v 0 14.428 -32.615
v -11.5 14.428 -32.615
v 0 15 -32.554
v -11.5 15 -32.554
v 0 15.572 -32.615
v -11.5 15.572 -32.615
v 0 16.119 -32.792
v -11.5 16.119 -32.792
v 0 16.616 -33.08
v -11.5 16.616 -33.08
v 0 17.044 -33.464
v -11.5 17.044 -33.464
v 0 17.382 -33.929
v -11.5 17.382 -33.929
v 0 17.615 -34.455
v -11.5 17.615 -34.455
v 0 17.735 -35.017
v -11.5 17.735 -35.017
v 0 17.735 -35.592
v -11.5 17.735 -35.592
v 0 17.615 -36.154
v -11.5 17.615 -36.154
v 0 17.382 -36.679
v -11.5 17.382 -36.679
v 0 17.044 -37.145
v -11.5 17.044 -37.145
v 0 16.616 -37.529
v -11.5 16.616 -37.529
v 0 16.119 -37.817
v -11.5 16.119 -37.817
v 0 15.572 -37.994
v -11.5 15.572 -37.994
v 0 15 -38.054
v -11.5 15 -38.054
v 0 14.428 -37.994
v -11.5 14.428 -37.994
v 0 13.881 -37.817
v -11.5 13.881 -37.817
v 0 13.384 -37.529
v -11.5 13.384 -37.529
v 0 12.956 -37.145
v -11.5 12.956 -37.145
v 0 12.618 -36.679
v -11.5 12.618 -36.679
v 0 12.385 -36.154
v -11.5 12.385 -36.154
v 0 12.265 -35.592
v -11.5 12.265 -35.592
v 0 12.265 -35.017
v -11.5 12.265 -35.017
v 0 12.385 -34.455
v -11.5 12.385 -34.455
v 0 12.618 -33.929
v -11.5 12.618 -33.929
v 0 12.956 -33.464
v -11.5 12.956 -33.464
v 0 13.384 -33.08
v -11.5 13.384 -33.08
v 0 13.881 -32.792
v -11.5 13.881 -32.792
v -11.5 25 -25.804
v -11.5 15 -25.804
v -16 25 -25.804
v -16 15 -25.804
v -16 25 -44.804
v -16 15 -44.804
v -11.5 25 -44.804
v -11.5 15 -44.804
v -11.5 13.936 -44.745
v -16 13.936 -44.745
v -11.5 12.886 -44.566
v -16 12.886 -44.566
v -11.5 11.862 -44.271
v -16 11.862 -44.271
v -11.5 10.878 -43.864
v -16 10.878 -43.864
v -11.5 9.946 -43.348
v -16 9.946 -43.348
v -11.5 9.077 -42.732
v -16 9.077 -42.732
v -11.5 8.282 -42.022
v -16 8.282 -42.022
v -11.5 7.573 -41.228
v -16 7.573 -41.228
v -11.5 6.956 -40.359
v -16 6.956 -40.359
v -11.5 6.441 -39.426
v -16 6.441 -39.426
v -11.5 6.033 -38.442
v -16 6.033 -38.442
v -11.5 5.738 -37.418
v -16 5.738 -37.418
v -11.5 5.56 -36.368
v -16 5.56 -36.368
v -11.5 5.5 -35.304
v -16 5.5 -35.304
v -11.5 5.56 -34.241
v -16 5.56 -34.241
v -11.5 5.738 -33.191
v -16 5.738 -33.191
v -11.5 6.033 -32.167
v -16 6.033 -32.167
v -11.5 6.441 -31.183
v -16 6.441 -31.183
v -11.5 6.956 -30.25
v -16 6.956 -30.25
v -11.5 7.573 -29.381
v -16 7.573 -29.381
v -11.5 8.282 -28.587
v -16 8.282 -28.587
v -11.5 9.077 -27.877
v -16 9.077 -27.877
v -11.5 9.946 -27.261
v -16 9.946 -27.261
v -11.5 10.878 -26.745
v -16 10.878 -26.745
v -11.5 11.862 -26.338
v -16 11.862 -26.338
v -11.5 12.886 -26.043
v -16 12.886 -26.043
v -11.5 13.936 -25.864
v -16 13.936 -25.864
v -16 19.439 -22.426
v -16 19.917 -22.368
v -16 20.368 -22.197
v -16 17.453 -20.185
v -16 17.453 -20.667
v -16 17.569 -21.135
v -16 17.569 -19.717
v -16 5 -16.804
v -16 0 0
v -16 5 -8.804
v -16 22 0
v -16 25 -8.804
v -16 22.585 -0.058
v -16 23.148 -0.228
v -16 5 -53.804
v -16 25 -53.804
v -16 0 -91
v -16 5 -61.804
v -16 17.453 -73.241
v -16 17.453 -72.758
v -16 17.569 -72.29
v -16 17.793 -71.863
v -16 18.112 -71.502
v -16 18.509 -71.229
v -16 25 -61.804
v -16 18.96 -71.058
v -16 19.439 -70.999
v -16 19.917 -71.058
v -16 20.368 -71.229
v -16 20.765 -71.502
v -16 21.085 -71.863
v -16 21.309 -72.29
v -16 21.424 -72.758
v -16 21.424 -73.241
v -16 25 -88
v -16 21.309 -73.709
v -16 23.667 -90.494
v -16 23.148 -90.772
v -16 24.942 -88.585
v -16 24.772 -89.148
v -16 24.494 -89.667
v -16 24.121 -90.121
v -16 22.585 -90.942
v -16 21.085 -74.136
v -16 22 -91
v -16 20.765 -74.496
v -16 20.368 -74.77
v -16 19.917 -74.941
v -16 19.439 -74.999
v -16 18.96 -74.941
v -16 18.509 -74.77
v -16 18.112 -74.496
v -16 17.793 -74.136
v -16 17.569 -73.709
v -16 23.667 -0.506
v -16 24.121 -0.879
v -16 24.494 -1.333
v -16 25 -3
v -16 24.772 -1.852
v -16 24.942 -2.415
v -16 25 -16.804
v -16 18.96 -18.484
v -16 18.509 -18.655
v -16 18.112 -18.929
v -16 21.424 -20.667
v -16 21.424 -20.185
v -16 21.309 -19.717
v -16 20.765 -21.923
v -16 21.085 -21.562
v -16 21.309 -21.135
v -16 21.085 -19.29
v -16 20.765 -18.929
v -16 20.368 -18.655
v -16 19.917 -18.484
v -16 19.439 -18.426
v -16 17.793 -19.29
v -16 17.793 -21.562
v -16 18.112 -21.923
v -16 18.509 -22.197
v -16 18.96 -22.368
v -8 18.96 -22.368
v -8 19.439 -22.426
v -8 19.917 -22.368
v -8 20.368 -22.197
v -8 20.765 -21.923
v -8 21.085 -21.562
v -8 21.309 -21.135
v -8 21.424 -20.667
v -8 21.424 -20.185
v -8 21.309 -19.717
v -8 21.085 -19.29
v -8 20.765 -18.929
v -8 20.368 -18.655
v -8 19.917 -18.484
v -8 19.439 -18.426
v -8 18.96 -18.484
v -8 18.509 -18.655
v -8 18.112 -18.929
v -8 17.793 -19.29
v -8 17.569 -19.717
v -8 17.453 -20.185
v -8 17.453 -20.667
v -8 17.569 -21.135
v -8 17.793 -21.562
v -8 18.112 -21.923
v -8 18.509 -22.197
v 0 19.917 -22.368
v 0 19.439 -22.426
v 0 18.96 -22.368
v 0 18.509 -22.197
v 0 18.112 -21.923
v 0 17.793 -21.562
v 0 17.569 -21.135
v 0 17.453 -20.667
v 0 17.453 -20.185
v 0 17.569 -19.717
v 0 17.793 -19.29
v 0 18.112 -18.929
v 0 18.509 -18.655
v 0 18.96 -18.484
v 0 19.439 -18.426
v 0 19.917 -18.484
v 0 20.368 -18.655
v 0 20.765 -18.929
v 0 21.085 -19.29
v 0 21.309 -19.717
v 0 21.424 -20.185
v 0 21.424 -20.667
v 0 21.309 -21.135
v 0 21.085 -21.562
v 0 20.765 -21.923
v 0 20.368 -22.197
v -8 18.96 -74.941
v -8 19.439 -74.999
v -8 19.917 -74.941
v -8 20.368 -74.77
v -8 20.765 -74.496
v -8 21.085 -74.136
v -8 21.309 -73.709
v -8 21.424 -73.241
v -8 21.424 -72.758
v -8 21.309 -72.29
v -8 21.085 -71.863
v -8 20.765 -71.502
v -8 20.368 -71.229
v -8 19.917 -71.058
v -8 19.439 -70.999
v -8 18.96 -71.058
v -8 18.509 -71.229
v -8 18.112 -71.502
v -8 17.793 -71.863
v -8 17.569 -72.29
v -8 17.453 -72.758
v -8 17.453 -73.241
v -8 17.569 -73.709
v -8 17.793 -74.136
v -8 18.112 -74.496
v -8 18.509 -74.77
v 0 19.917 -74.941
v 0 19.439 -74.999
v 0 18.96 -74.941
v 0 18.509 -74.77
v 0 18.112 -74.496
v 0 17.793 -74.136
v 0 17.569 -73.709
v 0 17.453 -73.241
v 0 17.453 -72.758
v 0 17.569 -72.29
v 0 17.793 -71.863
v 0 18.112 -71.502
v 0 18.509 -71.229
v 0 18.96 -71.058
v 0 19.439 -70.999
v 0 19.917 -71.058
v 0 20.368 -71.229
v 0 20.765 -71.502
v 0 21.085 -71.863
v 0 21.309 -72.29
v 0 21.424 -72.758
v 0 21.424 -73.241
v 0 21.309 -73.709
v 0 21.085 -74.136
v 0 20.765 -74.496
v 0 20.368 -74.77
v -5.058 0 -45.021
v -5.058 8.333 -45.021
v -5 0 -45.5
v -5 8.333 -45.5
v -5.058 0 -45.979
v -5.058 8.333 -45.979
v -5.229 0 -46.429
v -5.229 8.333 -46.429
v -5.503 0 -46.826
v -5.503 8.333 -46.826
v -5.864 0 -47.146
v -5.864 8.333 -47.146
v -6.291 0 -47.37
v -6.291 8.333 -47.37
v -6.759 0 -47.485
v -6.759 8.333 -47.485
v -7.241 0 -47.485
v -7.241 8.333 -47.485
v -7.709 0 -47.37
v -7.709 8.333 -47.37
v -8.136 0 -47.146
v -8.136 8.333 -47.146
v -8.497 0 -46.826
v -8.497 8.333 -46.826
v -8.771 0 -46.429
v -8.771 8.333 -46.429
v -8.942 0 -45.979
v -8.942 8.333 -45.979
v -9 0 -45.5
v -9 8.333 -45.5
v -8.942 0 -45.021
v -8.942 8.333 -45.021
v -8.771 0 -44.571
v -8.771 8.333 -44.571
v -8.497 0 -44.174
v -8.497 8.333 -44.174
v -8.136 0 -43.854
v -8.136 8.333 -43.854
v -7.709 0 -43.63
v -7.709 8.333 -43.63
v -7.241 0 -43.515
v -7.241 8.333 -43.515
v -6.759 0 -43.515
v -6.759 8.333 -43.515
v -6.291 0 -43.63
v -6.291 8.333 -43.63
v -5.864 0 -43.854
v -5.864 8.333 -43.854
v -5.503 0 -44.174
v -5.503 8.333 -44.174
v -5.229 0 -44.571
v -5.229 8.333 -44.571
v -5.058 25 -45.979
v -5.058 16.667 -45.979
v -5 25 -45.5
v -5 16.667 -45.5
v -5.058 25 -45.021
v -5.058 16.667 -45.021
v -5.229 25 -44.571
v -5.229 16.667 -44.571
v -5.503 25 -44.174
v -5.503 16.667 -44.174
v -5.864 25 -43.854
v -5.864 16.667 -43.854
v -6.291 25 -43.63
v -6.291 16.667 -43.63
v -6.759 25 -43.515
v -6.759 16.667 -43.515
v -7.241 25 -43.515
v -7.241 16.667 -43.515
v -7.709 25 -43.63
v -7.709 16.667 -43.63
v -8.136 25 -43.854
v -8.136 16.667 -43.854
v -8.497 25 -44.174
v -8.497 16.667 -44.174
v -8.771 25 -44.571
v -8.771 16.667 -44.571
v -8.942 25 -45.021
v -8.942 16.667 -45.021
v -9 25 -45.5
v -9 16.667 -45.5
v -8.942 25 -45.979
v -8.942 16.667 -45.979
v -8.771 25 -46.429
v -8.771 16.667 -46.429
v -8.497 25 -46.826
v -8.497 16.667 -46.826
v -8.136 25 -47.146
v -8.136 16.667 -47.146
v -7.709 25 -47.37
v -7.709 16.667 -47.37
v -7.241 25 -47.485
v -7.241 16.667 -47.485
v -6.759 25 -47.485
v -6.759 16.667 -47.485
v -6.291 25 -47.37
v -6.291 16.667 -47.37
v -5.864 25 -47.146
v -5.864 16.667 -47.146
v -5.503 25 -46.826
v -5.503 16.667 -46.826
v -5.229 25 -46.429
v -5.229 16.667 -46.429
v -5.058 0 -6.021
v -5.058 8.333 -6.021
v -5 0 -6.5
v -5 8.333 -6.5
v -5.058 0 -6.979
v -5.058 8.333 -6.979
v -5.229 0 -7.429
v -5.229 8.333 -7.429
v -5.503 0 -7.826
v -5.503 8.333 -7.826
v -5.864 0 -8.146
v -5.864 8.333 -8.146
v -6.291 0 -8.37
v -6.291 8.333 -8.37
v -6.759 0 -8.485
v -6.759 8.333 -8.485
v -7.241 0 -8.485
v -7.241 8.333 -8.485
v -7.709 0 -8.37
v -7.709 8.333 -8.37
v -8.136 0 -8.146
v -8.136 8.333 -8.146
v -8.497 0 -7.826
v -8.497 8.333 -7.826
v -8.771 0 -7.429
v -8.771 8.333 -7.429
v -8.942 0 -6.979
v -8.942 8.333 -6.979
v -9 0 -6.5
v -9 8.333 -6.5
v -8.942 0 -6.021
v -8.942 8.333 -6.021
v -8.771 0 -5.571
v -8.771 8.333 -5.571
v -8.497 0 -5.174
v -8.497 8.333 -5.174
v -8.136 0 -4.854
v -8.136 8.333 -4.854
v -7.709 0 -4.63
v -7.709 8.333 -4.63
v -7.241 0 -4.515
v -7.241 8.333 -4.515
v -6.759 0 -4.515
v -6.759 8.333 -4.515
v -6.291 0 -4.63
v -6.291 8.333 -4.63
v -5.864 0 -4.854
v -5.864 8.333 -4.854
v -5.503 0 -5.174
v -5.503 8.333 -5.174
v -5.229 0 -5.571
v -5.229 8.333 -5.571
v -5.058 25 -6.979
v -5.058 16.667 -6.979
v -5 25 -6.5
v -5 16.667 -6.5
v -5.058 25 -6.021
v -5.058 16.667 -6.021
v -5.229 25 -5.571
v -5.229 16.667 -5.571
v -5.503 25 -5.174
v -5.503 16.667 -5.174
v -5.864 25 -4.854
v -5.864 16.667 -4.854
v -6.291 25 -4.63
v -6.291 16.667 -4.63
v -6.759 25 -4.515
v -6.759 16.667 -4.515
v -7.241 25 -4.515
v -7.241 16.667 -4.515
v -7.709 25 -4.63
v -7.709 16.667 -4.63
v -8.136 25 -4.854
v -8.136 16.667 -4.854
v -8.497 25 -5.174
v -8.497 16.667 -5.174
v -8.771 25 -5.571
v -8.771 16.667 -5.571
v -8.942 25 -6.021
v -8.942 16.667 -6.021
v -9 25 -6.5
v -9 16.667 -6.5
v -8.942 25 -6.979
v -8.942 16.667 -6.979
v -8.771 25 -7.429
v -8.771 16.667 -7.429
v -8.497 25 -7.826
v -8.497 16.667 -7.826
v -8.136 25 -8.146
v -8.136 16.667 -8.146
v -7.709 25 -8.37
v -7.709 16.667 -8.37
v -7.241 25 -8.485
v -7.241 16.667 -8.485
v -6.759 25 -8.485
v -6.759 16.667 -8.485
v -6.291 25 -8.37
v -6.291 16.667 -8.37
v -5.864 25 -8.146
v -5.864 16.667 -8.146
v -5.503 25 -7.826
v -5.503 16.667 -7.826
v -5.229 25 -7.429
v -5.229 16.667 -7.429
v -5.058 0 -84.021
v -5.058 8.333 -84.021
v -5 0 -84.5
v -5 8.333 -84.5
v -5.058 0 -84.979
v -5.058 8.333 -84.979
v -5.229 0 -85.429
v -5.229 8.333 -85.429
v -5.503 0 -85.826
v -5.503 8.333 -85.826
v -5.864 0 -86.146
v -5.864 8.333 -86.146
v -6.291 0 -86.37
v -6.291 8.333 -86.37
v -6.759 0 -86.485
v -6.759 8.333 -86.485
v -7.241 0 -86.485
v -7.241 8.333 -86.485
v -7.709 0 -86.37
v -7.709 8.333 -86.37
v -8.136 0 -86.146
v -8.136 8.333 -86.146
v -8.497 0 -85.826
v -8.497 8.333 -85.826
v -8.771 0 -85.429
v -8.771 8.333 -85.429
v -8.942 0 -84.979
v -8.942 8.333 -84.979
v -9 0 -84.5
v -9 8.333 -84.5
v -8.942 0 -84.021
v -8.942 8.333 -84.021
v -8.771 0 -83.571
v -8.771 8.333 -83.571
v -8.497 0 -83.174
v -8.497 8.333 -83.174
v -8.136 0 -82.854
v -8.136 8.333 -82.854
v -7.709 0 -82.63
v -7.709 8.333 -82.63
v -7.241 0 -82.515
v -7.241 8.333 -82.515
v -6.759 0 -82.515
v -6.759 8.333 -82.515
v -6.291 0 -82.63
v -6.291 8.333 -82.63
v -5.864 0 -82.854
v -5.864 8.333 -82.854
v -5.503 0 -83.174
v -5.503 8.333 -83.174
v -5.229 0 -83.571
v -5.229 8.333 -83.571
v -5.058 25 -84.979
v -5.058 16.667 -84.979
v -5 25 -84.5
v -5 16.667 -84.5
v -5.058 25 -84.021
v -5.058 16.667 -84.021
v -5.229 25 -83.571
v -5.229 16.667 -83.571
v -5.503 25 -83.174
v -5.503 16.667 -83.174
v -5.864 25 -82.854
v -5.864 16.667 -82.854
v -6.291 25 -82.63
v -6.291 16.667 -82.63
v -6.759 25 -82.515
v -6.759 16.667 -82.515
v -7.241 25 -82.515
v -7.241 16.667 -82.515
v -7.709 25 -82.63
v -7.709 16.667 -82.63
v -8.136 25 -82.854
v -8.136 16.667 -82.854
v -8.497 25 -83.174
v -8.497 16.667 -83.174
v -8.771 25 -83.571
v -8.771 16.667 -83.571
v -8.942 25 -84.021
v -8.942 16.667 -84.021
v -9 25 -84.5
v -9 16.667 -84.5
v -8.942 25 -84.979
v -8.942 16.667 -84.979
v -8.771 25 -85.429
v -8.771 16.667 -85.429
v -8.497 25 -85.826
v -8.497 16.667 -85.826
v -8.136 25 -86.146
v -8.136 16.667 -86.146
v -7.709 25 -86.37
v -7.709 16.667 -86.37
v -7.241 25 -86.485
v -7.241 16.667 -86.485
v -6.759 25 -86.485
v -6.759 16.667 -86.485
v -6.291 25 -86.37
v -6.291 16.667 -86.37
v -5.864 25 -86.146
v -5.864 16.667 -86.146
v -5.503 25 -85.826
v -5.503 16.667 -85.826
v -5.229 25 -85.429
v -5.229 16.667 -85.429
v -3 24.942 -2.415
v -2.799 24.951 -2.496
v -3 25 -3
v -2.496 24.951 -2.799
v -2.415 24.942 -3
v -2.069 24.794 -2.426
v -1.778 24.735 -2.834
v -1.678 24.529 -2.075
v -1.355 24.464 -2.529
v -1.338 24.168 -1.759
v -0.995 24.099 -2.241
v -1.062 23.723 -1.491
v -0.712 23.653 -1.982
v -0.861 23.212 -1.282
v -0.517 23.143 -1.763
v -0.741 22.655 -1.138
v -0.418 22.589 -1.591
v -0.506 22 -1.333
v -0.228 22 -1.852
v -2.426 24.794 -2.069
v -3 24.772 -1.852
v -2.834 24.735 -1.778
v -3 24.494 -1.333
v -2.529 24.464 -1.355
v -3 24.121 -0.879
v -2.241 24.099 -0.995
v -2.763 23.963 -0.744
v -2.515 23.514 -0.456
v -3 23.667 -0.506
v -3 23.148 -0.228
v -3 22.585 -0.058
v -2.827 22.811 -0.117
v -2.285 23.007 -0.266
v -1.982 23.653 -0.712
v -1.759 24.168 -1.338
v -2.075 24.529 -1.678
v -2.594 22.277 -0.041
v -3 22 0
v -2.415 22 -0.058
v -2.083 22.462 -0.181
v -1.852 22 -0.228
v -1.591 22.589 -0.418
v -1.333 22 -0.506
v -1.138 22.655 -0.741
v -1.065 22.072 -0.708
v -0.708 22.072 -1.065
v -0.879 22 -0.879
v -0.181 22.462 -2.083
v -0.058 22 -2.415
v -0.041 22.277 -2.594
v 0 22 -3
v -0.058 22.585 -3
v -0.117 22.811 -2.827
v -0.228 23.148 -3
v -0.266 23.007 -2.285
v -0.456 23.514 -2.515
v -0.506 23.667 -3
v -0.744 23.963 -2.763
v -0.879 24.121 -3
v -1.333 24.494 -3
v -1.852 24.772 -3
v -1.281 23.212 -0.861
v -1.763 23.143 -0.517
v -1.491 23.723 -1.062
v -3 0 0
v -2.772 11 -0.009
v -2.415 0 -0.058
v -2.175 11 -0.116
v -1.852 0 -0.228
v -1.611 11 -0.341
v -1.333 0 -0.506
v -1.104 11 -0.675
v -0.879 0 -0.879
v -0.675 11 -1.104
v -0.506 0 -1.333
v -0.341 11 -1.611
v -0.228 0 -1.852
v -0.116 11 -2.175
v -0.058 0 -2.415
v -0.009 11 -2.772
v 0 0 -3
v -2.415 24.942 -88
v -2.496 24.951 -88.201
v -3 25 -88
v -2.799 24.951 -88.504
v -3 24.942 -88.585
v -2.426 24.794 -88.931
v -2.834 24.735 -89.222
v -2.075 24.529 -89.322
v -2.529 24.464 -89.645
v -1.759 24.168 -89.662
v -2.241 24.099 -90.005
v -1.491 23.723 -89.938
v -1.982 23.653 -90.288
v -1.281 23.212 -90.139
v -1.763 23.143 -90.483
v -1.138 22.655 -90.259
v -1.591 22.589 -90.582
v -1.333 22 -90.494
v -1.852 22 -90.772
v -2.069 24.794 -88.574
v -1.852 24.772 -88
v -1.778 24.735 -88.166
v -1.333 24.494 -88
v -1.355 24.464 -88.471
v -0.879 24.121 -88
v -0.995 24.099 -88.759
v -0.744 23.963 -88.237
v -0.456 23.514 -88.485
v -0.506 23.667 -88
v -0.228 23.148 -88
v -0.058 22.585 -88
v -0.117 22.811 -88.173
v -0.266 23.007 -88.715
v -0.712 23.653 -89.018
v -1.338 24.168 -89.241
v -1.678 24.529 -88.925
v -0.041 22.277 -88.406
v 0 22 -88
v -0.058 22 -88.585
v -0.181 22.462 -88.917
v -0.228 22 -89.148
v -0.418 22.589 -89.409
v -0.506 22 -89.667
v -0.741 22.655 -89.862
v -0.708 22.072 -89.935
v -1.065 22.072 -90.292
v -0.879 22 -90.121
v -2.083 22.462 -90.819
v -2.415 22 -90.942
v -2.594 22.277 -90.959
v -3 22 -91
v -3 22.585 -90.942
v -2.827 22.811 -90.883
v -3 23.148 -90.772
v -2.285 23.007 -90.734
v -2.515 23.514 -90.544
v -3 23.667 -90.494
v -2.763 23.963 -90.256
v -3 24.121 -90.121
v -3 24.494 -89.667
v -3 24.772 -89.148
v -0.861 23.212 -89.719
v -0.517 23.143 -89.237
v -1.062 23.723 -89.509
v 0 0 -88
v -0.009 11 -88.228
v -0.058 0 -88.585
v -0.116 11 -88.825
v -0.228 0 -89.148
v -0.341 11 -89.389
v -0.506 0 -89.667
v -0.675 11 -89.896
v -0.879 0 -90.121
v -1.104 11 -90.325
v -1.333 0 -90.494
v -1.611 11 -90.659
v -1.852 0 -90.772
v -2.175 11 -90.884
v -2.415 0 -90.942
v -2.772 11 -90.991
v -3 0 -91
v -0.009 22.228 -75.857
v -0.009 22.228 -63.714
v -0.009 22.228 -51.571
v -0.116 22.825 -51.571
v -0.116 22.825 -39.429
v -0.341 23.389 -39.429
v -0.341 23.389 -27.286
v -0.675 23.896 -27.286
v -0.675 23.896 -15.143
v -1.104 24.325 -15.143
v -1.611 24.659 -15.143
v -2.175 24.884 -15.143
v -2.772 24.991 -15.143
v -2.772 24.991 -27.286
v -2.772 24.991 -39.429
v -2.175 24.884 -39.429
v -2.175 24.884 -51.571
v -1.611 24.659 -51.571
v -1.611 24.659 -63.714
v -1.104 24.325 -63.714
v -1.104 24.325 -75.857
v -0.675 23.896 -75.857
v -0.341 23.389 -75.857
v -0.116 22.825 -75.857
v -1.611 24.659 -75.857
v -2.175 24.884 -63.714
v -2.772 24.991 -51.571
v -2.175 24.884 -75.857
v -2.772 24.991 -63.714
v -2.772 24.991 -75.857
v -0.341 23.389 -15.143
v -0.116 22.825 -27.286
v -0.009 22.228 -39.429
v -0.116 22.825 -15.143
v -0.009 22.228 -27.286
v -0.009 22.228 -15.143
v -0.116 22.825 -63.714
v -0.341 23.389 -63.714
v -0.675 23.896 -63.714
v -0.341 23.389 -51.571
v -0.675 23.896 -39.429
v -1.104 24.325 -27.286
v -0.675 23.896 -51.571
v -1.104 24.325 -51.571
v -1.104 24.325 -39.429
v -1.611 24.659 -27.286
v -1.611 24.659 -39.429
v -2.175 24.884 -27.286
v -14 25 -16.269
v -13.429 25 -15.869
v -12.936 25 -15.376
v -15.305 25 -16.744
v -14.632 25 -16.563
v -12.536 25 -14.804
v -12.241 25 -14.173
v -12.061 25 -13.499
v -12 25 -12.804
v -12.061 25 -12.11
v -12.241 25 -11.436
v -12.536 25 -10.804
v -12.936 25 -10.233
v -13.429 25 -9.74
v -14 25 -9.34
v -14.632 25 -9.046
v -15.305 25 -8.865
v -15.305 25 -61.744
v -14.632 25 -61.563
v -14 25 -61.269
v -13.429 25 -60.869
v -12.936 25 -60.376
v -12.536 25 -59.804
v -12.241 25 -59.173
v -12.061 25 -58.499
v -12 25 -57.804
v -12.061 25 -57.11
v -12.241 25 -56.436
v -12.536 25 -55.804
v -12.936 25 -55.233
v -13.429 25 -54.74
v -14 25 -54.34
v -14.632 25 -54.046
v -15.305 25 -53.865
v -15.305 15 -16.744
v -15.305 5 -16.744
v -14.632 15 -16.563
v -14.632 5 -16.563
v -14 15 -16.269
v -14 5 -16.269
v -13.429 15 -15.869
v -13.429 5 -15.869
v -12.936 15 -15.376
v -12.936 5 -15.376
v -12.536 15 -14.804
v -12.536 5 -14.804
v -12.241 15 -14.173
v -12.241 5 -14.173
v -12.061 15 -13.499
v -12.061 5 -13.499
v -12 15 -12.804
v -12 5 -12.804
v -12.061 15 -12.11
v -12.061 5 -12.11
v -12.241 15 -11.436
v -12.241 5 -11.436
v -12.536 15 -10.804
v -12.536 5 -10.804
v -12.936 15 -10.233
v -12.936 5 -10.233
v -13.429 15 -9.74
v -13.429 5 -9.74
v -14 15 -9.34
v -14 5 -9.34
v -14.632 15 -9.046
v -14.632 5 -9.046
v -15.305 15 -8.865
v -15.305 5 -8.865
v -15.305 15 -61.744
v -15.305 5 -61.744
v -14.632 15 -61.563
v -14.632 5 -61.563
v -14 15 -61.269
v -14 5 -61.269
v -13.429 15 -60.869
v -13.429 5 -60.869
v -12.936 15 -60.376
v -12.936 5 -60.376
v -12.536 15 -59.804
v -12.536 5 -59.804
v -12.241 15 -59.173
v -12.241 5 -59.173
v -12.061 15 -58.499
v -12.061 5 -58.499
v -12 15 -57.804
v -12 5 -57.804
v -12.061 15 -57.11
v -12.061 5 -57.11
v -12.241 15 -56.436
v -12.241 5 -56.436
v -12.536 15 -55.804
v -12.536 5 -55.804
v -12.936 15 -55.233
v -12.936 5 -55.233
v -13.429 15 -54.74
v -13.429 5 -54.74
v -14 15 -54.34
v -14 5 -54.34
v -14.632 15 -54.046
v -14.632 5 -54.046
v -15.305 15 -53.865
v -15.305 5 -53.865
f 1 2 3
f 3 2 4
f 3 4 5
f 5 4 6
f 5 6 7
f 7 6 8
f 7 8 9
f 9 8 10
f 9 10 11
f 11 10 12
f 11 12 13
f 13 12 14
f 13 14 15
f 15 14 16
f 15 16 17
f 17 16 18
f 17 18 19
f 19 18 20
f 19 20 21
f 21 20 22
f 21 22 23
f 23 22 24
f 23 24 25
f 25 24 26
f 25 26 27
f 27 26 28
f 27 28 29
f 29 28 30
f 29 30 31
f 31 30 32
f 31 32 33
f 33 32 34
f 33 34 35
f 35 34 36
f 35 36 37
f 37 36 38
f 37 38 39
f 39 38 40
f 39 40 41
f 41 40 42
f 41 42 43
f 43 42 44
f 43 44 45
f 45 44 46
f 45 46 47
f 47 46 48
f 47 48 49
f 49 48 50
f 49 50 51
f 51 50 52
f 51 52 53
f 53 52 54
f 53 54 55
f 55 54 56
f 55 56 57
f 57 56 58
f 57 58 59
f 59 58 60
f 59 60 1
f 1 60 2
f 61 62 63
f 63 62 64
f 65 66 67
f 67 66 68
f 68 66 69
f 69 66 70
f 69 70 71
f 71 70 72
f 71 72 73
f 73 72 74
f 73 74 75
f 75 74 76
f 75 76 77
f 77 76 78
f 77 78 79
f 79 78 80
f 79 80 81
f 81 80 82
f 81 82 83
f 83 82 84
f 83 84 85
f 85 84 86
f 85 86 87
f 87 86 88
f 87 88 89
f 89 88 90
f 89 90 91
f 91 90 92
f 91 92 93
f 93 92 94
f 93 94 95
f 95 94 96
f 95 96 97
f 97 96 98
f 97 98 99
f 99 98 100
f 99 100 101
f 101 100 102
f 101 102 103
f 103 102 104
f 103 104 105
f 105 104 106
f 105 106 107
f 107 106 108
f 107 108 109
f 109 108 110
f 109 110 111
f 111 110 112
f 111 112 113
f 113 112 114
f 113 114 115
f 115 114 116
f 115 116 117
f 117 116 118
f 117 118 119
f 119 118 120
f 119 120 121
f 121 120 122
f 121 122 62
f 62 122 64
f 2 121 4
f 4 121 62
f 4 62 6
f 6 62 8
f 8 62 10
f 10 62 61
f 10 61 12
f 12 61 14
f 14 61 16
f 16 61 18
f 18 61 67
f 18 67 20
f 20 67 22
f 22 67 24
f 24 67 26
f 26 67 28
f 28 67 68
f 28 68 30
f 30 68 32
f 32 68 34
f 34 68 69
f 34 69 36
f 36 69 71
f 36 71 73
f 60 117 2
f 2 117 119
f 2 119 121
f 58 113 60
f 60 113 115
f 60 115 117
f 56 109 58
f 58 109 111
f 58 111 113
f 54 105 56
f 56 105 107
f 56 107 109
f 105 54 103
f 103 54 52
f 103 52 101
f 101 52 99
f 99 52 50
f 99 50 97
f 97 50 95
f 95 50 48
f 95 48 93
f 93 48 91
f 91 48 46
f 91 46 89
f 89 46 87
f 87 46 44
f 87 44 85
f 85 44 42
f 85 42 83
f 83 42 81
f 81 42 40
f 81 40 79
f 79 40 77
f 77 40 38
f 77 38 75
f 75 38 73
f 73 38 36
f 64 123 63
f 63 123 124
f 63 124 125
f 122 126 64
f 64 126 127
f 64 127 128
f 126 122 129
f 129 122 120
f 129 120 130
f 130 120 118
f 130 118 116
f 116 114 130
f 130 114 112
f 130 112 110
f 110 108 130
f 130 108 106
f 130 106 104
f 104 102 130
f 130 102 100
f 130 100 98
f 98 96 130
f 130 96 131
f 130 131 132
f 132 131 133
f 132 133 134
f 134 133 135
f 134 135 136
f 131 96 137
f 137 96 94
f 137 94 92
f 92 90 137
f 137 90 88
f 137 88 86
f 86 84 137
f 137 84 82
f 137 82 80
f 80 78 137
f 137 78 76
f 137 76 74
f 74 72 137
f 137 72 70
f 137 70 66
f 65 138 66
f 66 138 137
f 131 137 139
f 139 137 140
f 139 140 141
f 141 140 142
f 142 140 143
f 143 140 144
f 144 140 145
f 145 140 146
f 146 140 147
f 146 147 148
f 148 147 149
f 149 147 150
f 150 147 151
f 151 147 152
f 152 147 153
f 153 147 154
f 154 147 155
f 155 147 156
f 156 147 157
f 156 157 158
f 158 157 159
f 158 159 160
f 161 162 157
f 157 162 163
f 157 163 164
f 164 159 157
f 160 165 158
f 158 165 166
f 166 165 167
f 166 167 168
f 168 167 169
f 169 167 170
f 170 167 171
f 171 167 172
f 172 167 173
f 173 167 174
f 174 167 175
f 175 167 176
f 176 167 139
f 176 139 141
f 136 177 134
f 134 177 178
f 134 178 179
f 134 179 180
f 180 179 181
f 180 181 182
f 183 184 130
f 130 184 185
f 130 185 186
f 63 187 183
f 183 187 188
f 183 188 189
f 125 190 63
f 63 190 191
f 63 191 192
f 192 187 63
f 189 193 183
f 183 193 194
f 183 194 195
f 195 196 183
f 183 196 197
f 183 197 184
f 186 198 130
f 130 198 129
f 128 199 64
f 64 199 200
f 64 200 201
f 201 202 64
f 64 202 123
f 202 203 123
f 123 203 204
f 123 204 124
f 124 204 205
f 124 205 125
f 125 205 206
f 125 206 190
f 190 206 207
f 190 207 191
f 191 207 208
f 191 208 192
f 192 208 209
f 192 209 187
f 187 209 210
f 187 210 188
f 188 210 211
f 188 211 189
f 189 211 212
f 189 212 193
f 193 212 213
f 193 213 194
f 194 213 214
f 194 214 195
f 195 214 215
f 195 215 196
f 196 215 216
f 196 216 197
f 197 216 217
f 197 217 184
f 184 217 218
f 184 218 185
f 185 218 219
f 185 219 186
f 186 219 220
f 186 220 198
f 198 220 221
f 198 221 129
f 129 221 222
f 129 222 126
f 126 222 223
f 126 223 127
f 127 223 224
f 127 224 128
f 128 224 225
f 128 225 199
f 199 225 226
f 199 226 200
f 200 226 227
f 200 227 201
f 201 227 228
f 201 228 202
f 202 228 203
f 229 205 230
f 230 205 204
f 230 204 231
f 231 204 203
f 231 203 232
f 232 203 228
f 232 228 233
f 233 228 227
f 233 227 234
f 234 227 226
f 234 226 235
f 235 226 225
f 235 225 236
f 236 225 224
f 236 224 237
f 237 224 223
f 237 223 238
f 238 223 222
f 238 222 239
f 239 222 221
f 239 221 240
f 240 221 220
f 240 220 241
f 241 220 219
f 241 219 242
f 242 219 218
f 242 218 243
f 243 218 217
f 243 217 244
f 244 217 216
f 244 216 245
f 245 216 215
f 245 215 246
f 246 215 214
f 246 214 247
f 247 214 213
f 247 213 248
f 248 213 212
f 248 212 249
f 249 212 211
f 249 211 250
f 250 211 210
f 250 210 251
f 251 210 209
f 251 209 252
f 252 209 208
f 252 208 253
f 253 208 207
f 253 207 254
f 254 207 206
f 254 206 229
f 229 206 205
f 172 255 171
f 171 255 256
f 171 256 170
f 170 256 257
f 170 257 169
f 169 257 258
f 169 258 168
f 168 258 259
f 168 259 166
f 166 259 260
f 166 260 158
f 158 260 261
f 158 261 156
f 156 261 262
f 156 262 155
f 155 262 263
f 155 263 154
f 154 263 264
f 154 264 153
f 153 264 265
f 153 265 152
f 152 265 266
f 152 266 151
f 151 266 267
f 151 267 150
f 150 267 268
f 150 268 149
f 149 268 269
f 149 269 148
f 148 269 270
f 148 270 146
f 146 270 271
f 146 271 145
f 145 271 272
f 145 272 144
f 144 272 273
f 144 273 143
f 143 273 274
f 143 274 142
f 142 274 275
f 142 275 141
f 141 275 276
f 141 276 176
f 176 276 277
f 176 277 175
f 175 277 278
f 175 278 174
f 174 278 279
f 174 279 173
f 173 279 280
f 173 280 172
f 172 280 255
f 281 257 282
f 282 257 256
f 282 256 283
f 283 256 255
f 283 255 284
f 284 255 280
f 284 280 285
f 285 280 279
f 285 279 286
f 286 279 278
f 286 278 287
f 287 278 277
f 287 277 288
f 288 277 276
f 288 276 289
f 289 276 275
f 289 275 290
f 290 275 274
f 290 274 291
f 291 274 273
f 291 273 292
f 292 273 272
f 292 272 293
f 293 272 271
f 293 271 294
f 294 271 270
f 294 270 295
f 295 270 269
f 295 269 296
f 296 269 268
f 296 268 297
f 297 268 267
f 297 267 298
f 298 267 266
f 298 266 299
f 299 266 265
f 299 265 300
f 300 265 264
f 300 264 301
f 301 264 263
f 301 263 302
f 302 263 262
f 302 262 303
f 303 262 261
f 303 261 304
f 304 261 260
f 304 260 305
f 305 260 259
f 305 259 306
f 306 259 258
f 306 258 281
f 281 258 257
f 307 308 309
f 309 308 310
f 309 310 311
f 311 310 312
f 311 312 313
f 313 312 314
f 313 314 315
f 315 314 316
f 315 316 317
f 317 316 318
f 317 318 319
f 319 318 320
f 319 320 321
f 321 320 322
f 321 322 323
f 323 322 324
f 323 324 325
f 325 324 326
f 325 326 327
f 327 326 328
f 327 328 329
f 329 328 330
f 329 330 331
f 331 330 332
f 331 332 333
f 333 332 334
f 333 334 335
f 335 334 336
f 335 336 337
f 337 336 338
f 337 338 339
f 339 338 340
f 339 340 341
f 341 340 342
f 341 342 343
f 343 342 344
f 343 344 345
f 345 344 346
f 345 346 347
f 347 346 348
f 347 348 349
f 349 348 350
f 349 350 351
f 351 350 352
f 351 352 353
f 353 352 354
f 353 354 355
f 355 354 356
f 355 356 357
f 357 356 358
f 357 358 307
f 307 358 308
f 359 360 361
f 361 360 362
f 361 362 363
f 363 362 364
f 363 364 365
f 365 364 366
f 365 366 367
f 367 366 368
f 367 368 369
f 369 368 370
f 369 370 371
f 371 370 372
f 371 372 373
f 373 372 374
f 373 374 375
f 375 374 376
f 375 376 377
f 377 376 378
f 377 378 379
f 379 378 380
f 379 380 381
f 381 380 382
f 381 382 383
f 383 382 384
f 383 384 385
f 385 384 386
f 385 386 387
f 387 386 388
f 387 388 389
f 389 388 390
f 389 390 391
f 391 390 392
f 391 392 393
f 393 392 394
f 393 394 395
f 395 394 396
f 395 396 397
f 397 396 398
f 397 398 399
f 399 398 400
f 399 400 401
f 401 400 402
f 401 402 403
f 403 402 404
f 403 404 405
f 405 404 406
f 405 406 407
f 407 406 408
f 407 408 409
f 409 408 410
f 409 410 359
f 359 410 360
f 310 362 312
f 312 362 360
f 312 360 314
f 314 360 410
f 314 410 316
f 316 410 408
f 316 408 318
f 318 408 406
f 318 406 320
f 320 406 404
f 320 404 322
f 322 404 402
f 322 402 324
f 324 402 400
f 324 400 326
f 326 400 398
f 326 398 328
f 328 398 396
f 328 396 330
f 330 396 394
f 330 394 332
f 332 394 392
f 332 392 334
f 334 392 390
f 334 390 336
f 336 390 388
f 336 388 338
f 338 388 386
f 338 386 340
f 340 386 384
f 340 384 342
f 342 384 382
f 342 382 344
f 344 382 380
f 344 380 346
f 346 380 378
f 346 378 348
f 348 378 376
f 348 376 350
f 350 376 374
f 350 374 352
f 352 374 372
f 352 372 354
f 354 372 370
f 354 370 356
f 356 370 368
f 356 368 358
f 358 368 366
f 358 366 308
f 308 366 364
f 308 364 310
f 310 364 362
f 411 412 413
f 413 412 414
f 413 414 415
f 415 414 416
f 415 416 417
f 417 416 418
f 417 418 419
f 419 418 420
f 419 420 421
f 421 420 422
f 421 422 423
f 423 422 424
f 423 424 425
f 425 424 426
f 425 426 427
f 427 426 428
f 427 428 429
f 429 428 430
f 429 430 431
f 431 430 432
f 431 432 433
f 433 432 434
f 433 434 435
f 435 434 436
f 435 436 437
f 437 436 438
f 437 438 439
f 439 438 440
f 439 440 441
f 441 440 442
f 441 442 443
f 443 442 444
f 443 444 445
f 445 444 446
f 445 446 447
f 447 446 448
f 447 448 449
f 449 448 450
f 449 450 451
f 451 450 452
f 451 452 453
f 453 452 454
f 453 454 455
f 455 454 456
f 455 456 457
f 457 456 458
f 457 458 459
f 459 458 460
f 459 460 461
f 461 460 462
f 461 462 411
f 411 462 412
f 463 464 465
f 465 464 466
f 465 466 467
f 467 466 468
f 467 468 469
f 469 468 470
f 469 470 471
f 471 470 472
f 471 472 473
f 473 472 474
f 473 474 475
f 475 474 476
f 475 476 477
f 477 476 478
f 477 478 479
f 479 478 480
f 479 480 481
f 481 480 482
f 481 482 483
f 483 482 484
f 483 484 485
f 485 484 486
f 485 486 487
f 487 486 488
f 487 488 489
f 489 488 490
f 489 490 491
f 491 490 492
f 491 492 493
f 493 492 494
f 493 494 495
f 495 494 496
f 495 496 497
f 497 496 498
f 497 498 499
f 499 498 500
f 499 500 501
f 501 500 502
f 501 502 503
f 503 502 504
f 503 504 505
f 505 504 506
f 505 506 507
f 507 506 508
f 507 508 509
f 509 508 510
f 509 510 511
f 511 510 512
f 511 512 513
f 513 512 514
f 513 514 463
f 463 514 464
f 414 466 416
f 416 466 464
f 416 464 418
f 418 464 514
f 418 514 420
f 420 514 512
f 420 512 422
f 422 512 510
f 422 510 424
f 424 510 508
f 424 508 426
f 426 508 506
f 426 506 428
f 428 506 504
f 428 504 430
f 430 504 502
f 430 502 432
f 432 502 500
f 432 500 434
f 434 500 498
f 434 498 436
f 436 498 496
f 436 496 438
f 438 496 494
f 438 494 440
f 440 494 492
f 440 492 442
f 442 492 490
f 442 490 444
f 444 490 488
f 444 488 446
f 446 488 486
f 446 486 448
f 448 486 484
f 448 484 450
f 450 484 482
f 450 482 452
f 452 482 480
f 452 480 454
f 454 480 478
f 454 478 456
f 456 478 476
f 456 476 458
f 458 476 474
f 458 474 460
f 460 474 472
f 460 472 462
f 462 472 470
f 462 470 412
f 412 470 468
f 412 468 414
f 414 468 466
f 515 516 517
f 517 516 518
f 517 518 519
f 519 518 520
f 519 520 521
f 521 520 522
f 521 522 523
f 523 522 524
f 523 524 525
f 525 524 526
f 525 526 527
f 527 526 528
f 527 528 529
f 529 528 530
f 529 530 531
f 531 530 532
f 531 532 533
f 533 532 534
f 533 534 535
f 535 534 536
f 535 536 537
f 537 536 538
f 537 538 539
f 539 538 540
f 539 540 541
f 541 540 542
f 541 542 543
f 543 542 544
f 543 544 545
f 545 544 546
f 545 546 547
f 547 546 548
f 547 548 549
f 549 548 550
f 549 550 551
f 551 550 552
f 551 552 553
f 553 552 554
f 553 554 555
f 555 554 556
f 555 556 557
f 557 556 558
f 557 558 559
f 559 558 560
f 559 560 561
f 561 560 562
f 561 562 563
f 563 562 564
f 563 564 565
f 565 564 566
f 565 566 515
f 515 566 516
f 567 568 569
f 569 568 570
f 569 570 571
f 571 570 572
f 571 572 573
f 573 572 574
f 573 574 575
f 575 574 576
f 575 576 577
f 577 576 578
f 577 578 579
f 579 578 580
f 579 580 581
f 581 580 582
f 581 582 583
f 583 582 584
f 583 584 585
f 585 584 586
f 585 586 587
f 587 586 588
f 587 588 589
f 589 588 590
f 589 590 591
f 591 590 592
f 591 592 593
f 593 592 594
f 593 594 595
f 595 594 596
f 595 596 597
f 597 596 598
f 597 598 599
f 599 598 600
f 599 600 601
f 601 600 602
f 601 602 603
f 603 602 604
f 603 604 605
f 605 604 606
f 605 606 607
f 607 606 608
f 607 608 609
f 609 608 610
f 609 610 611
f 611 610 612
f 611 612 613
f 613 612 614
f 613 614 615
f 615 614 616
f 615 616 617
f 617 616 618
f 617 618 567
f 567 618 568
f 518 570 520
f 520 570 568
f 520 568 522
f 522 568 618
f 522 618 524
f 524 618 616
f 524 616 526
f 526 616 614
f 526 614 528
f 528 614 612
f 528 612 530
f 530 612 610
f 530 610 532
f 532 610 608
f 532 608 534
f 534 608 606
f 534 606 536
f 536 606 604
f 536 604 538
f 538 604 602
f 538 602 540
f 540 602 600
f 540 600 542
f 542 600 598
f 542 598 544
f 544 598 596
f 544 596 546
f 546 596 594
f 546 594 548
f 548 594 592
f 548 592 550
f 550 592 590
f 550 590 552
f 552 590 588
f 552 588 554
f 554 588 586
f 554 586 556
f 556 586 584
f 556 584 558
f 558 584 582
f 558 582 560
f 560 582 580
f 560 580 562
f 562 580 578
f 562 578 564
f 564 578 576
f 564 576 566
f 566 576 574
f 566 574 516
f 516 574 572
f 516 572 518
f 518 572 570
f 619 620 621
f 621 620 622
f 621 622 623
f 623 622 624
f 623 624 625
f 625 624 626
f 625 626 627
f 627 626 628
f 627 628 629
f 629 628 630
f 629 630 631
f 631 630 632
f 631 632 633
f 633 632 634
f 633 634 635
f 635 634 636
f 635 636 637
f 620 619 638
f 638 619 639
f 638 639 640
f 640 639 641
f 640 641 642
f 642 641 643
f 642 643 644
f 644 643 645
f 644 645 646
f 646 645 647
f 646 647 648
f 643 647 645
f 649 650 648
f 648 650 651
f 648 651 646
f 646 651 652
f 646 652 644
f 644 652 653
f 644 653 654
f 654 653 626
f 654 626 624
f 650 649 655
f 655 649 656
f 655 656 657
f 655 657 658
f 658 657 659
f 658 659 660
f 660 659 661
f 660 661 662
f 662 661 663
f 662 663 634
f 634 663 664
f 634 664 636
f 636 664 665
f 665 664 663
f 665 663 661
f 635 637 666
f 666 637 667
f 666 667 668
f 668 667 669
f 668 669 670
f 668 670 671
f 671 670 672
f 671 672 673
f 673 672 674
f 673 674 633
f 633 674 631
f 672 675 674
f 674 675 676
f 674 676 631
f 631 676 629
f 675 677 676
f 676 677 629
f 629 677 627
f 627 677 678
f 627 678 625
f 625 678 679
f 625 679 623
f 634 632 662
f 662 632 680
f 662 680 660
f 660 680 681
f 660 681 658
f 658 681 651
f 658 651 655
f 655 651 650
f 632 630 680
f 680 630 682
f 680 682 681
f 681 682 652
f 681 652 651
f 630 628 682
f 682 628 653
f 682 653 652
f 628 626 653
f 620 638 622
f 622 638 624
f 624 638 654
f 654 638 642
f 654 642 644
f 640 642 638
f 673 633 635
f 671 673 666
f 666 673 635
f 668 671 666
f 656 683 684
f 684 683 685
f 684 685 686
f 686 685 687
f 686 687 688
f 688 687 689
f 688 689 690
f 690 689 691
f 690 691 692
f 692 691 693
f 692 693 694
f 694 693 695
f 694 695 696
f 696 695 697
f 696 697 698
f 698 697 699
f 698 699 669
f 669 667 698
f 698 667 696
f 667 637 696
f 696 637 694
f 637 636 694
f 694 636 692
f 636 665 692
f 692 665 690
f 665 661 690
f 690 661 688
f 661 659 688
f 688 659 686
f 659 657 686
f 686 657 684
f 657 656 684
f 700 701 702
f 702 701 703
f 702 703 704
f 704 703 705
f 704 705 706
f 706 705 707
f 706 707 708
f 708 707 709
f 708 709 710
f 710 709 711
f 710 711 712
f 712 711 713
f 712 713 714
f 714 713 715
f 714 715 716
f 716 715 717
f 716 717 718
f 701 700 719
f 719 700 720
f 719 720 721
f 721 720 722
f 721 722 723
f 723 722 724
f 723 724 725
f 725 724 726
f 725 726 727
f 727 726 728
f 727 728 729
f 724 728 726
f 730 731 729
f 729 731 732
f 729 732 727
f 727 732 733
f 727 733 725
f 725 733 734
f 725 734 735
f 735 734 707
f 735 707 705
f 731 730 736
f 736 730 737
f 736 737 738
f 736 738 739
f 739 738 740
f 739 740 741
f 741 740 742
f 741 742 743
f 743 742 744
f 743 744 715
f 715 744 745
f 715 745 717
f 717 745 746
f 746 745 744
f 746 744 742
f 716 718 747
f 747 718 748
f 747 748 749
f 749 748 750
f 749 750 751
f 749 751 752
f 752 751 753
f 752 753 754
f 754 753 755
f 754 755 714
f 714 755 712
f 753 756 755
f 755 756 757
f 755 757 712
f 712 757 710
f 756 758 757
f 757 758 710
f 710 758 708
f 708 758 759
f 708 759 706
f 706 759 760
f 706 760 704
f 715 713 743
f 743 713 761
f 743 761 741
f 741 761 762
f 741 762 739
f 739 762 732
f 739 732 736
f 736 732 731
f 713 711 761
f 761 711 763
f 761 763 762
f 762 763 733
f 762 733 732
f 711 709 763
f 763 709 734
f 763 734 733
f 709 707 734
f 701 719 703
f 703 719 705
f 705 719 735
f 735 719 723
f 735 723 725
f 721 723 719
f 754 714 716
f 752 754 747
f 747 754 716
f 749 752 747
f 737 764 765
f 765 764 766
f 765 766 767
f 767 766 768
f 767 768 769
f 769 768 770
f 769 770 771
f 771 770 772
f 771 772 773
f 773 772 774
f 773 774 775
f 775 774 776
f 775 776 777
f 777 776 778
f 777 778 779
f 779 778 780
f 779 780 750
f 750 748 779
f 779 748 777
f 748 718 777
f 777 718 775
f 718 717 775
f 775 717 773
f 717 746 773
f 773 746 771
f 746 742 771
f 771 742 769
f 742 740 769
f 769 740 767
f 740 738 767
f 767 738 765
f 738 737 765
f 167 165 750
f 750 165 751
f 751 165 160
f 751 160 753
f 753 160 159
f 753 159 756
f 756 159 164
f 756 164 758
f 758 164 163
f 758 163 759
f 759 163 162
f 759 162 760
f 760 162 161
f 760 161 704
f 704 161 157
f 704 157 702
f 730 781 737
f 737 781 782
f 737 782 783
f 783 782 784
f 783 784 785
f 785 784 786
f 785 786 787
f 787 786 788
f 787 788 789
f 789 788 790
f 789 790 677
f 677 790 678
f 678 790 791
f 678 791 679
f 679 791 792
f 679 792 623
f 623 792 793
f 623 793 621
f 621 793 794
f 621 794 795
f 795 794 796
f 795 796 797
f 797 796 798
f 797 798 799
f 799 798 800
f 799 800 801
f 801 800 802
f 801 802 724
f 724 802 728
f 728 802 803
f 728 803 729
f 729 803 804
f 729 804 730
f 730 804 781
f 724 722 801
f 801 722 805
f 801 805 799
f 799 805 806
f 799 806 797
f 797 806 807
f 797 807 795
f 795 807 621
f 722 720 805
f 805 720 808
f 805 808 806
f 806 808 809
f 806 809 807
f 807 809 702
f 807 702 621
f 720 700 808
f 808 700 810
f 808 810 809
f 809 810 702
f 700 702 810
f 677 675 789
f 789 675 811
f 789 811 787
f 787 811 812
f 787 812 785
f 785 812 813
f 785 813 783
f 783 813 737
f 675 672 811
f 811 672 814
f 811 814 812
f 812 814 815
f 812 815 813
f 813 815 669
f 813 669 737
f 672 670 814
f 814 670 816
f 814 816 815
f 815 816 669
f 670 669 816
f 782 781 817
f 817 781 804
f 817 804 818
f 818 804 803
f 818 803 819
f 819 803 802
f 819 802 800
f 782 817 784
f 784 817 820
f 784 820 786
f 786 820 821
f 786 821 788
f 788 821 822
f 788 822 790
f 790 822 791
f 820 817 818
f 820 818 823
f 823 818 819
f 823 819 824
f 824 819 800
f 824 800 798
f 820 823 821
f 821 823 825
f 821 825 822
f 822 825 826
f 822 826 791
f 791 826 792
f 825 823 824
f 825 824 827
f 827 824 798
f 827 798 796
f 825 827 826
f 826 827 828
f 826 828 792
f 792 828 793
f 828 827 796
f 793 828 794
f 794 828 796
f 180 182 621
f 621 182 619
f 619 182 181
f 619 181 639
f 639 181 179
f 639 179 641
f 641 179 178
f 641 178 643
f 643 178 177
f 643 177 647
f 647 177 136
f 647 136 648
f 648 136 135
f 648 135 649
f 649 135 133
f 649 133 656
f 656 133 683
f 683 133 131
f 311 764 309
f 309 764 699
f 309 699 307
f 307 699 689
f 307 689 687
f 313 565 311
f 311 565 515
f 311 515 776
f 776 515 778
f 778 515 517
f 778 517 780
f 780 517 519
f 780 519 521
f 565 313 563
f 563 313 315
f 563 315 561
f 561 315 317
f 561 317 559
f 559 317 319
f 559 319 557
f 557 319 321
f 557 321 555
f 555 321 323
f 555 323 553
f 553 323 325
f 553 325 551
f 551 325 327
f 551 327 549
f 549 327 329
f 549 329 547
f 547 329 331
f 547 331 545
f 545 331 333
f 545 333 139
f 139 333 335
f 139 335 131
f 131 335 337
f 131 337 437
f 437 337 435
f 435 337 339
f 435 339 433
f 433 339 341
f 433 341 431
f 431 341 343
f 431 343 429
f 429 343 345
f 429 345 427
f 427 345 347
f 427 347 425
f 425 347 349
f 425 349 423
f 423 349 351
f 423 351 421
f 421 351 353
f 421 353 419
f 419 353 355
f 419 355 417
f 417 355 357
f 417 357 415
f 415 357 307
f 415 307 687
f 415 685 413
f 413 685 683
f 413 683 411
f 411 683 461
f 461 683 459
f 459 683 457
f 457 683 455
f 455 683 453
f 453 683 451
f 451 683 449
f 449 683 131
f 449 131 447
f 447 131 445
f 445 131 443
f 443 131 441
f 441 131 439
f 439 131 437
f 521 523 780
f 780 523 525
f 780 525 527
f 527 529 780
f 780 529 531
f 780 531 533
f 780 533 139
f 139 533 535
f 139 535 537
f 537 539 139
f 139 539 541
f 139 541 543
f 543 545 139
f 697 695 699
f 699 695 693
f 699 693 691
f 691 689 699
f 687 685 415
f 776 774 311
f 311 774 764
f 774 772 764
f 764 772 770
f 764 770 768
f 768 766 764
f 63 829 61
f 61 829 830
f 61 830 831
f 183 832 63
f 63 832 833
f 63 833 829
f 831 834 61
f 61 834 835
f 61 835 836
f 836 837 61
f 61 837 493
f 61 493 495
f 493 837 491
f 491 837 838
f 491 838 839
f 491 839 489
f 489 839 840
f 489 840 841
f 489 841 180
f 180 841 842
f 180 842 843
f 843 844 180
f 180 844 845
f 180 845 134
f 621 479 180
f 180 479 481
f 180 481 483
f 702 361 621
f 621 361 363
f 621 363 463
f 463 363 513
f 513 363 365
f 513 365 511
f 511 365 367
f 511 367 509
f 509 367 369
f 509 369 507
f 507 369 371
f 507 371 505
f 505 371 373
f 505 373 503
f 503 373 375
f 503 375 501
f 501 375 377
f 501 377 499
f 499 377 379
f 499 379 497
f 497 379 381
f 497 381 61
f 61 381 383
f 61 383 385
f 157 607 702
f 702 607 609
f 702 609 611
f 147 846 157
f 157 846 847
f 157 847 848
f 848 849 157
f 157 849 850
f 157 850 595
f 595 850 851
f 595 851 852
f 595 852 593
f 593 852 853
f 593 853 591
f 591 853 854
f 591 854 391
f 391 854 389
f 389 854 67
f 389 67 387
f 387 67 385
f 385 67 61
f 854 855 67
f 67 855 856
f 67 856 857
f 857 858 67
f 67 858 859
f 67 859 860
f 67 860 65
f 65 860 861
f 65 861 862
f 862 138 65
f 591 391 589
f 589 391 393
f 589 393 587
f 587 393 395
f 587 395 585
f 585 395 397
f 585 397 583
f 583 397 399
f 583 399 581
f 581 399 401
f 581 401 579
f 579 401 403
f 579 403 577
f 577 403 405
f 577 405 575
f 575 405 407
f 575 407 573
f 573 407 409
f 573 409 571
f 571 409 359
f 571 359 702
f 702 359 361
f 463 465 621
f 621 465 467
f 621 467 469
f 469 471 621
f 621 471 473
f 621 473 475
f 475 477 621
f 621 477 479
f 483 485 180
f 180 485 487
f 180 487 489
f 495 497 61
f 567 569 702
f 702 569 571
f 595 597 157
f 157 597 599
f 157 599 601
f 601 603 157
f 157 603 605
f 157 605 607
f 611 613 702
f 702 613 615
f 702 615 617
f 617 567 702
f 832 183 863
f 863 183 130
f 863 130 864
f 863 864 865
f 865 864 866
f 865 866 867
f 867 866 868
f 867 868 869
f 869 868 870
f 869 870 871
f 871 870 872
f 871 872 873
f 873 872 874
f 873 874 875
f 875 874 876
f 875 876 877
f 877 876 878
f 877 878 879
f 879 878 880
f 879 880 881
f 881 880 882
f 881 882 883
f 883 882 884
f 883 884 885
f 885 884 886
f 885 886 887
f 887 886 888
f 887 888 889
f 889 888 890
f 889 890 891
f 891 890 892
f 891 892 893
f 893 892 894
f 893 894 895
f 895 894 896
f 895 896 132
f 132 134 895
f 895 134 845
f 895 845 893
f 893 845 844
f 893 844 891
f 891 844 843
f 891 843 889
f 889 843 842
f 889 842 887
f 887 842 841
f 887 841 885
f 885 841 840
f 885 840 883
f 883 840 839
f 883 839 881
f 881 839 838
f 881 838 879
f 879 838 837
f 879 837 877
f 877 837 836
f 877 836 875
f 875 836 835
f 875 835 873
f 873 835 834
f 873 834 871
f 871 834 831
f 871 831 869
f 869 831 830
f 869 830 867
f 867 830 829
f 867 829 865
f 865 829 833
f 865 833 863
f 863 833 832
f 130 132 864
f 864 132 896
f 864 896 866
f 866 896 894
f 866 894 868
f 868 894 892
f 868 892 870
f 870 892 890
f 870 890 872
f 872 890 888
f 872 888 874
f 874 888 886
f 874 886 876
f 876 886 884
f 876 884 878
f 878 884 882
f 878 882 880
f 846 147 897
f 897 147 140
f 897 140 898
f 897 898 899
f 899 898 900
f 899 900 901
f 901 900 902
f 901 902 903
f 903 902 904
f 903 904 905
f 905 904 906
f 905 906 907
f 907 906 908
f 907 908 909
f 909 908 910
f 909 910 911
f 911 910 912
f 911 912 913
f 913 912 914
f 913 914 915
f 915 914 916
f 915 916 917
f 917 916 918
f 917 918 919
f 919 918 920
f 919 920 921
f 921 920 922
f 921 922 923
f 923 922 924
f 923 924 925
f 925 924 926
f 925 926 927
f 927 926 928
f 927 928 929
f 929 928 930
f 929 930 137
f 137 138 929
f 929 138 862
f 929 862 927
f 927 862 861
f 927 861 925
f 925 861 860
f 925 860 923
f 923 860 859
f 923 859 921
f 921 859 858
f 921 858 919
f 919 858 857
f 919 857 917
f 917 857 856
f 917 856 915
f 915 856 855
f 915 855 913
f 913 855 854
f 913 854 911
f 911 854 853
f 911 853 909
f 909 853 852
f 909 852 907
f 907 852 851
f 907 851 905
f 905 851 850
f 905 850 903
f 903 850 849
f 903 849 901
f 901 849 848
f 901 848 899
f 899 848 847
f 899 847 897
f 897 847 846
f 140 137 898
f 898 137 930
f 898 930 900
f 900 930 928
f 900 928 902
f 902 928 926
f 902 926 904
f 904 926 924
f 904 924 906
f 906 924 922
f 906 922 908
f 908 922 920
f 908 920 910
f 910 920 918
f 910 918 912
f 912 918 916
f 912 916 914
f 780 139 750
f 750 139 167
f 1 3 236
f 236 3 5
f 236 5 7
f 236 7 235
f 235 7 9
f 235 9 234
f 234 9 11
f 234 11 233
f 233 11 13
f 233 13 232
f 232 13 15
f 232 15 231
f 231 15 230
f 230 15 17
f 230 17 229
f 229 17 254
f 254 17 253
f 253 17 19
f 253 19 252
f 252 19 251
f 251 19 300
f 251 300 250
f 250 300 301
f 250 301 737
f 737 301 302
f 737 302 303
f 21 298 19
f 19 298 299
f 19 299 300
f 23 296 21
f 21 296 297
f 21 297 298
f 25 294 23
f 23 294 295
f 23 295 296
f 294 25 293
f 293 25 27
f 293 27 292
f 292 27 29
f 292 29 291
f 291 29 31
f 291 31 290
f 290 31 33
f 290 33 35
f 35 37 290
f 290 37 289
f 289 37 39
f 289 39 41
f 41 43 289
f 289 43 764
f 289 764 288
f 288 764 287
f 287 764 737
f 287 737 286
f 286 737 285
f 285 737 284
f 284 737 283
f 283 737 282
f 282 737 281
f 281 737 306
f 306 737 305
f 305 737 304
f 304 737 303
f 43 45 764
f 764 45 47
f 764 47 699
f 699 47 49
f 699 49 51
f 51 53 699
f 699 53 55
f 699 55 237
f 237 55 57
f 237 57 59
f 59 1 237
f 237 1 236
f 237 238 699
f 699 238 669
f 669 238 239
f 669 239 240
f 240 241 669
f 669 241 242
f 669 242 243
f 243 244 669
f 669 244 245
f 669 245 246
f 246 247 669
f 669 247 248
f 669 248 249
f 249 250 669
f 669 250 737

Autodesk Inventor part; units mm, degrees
ref_plane "YZ Plane" through (0, 0, 0) normal (1, 0, 0) x (0, 1, 0)
ref_plane "XZ Plane" through (0, 0, 0) normal (0, 1, 0) x (-1, 0, 0)
ref_plane "XY Plane" through (0, 0, 0) normal (0, 0, 1) x (1, 0, 0)
sketch "Sketch1" plane through (0, 0, 0) normal (0, 1, 0) x (-1, 0, 0)
  line L0 (0, 0) -> (16, 0)
  line L1 (16, 0) -> (16, -91)
  line L2 (16, -91) -> (0, -91)
  line L3 (0, -91) -> (0, 0)
  dimension "d0" = 16
  dimension "d1" = 91
extrude "Extrusion1" add sketch "Sketch1" along normal blind 25
sketch "Sketch2" plane through (0, 25, 0) normal (0, 1, 0) x (1, 0, 0)
  line L0 (-16, 91) -> (-16, 0) projected
  circle A0 centre (-16, 12.8045) radius 4
  circle A1 centre (-16, 57.8045) radius 4
  point P0 (0, 0)
  dimension "d4" = 8
  dimension "d5" = 8
  dimension "d6" = 45
extrude "Extrusion2" cut sketch "Sketch2" against normal blind 20
fillet "Fillet1" radius 3 5 edges at (0, 12.5, -91) (0, 12.5, 0) (0, 25, -45.5) (-8, 25, -91) (-8, 25, 0)
sketch "Sketch3" plane through (0, 25, 0) normal (0, 1, 0) x (1, 0, 0)
  circle A0 centre (-7, 6.5) radius 2
  circle A1 centre (-7, 45.5) radius 2
  circle A2 centre (-7, 84.5) radius 2
  line L0 (-16, 8.8045) -> (-16, 3) projected
  line L1 (-16, 53.8045) -> (-16, 16.8045) projected
  line L2 (-16, 88) -> (-16, 61.8045) projected
  point P0 (0, 0)
  dimension "d10" = 4
  dimension "d11" = 4
  dimension "d12" = 4
  dimension "d13" = 39
  dimension "d14" = 39
  dimension "d15" = 9
  dimension "d16" = 9
  dimension "d17" = 9
  dimension "d18" = 6.5
extrude "Extrusion3" cut sketch "Sketch3" against normal blind 30
sketch "Sketch4" plane through (0, 0, -3) normal (1, 0, 0) x (0, 0, -1)
  circle A0 centre (17.4261, 19.4387) radius 2
  circle A1 centre (69.9995, 19.4387) radius 2
  point P0 (-3, 0)
  dimension "d21" = 4
  dimension "d22" = 4
extrude "Extrusion4" cut sketch "Sketch4" against normal blind 30
sketch "Sketch5" plane through (-16, 0, -91) normal (-1, 0, 0) x (0, 0, 1)
  point P0 (91, 0)
sketch "Sketch6" plane through (-16, 0, -91) normal (-1, 0, 0) x (0, 0, 1)
  arc A0 (46.1955, 15) -> (65.1955, 15) centre (55.6955, 15) ccw
  line L0 (37.1955, 25) -> (37.1955, 5) projected
  line L1 (37.1955, 25) -> (74.1955, 25) projected
  line L2 (46.1955, 15) -> (46.1955, 30.0529)
  line L3 (46.1955, 30.0529) -> (65.1955, 30.0529)
  line L4 (65.1955, 30.0529) -> (65.1955, 15)
  point P0 (91, 0)
  dimension "d25" = 19
  dimension "d26" = 18.5
  dimension "d27" = 10
extrude "Extrusion5" cut sketch "Sketch6" against normal blind 4.5
sketch "Sketch7" plane through (-11.5, 0, -91) normal (-1, 0, 0) x (0, 0, 1)
  circle A0 centre (55.6955, 15) radius 2.75
  line L0 (37.1955, 25) -> (37.1955, 5) projected
  point P0 (91, 0)
  dimension "d30" = 5.5
  dimension "d31" = 18.5
extrude "Extrusion6" cut sketch "Sketch7" against normal blind 30
properties part number "ldlerradrod"
